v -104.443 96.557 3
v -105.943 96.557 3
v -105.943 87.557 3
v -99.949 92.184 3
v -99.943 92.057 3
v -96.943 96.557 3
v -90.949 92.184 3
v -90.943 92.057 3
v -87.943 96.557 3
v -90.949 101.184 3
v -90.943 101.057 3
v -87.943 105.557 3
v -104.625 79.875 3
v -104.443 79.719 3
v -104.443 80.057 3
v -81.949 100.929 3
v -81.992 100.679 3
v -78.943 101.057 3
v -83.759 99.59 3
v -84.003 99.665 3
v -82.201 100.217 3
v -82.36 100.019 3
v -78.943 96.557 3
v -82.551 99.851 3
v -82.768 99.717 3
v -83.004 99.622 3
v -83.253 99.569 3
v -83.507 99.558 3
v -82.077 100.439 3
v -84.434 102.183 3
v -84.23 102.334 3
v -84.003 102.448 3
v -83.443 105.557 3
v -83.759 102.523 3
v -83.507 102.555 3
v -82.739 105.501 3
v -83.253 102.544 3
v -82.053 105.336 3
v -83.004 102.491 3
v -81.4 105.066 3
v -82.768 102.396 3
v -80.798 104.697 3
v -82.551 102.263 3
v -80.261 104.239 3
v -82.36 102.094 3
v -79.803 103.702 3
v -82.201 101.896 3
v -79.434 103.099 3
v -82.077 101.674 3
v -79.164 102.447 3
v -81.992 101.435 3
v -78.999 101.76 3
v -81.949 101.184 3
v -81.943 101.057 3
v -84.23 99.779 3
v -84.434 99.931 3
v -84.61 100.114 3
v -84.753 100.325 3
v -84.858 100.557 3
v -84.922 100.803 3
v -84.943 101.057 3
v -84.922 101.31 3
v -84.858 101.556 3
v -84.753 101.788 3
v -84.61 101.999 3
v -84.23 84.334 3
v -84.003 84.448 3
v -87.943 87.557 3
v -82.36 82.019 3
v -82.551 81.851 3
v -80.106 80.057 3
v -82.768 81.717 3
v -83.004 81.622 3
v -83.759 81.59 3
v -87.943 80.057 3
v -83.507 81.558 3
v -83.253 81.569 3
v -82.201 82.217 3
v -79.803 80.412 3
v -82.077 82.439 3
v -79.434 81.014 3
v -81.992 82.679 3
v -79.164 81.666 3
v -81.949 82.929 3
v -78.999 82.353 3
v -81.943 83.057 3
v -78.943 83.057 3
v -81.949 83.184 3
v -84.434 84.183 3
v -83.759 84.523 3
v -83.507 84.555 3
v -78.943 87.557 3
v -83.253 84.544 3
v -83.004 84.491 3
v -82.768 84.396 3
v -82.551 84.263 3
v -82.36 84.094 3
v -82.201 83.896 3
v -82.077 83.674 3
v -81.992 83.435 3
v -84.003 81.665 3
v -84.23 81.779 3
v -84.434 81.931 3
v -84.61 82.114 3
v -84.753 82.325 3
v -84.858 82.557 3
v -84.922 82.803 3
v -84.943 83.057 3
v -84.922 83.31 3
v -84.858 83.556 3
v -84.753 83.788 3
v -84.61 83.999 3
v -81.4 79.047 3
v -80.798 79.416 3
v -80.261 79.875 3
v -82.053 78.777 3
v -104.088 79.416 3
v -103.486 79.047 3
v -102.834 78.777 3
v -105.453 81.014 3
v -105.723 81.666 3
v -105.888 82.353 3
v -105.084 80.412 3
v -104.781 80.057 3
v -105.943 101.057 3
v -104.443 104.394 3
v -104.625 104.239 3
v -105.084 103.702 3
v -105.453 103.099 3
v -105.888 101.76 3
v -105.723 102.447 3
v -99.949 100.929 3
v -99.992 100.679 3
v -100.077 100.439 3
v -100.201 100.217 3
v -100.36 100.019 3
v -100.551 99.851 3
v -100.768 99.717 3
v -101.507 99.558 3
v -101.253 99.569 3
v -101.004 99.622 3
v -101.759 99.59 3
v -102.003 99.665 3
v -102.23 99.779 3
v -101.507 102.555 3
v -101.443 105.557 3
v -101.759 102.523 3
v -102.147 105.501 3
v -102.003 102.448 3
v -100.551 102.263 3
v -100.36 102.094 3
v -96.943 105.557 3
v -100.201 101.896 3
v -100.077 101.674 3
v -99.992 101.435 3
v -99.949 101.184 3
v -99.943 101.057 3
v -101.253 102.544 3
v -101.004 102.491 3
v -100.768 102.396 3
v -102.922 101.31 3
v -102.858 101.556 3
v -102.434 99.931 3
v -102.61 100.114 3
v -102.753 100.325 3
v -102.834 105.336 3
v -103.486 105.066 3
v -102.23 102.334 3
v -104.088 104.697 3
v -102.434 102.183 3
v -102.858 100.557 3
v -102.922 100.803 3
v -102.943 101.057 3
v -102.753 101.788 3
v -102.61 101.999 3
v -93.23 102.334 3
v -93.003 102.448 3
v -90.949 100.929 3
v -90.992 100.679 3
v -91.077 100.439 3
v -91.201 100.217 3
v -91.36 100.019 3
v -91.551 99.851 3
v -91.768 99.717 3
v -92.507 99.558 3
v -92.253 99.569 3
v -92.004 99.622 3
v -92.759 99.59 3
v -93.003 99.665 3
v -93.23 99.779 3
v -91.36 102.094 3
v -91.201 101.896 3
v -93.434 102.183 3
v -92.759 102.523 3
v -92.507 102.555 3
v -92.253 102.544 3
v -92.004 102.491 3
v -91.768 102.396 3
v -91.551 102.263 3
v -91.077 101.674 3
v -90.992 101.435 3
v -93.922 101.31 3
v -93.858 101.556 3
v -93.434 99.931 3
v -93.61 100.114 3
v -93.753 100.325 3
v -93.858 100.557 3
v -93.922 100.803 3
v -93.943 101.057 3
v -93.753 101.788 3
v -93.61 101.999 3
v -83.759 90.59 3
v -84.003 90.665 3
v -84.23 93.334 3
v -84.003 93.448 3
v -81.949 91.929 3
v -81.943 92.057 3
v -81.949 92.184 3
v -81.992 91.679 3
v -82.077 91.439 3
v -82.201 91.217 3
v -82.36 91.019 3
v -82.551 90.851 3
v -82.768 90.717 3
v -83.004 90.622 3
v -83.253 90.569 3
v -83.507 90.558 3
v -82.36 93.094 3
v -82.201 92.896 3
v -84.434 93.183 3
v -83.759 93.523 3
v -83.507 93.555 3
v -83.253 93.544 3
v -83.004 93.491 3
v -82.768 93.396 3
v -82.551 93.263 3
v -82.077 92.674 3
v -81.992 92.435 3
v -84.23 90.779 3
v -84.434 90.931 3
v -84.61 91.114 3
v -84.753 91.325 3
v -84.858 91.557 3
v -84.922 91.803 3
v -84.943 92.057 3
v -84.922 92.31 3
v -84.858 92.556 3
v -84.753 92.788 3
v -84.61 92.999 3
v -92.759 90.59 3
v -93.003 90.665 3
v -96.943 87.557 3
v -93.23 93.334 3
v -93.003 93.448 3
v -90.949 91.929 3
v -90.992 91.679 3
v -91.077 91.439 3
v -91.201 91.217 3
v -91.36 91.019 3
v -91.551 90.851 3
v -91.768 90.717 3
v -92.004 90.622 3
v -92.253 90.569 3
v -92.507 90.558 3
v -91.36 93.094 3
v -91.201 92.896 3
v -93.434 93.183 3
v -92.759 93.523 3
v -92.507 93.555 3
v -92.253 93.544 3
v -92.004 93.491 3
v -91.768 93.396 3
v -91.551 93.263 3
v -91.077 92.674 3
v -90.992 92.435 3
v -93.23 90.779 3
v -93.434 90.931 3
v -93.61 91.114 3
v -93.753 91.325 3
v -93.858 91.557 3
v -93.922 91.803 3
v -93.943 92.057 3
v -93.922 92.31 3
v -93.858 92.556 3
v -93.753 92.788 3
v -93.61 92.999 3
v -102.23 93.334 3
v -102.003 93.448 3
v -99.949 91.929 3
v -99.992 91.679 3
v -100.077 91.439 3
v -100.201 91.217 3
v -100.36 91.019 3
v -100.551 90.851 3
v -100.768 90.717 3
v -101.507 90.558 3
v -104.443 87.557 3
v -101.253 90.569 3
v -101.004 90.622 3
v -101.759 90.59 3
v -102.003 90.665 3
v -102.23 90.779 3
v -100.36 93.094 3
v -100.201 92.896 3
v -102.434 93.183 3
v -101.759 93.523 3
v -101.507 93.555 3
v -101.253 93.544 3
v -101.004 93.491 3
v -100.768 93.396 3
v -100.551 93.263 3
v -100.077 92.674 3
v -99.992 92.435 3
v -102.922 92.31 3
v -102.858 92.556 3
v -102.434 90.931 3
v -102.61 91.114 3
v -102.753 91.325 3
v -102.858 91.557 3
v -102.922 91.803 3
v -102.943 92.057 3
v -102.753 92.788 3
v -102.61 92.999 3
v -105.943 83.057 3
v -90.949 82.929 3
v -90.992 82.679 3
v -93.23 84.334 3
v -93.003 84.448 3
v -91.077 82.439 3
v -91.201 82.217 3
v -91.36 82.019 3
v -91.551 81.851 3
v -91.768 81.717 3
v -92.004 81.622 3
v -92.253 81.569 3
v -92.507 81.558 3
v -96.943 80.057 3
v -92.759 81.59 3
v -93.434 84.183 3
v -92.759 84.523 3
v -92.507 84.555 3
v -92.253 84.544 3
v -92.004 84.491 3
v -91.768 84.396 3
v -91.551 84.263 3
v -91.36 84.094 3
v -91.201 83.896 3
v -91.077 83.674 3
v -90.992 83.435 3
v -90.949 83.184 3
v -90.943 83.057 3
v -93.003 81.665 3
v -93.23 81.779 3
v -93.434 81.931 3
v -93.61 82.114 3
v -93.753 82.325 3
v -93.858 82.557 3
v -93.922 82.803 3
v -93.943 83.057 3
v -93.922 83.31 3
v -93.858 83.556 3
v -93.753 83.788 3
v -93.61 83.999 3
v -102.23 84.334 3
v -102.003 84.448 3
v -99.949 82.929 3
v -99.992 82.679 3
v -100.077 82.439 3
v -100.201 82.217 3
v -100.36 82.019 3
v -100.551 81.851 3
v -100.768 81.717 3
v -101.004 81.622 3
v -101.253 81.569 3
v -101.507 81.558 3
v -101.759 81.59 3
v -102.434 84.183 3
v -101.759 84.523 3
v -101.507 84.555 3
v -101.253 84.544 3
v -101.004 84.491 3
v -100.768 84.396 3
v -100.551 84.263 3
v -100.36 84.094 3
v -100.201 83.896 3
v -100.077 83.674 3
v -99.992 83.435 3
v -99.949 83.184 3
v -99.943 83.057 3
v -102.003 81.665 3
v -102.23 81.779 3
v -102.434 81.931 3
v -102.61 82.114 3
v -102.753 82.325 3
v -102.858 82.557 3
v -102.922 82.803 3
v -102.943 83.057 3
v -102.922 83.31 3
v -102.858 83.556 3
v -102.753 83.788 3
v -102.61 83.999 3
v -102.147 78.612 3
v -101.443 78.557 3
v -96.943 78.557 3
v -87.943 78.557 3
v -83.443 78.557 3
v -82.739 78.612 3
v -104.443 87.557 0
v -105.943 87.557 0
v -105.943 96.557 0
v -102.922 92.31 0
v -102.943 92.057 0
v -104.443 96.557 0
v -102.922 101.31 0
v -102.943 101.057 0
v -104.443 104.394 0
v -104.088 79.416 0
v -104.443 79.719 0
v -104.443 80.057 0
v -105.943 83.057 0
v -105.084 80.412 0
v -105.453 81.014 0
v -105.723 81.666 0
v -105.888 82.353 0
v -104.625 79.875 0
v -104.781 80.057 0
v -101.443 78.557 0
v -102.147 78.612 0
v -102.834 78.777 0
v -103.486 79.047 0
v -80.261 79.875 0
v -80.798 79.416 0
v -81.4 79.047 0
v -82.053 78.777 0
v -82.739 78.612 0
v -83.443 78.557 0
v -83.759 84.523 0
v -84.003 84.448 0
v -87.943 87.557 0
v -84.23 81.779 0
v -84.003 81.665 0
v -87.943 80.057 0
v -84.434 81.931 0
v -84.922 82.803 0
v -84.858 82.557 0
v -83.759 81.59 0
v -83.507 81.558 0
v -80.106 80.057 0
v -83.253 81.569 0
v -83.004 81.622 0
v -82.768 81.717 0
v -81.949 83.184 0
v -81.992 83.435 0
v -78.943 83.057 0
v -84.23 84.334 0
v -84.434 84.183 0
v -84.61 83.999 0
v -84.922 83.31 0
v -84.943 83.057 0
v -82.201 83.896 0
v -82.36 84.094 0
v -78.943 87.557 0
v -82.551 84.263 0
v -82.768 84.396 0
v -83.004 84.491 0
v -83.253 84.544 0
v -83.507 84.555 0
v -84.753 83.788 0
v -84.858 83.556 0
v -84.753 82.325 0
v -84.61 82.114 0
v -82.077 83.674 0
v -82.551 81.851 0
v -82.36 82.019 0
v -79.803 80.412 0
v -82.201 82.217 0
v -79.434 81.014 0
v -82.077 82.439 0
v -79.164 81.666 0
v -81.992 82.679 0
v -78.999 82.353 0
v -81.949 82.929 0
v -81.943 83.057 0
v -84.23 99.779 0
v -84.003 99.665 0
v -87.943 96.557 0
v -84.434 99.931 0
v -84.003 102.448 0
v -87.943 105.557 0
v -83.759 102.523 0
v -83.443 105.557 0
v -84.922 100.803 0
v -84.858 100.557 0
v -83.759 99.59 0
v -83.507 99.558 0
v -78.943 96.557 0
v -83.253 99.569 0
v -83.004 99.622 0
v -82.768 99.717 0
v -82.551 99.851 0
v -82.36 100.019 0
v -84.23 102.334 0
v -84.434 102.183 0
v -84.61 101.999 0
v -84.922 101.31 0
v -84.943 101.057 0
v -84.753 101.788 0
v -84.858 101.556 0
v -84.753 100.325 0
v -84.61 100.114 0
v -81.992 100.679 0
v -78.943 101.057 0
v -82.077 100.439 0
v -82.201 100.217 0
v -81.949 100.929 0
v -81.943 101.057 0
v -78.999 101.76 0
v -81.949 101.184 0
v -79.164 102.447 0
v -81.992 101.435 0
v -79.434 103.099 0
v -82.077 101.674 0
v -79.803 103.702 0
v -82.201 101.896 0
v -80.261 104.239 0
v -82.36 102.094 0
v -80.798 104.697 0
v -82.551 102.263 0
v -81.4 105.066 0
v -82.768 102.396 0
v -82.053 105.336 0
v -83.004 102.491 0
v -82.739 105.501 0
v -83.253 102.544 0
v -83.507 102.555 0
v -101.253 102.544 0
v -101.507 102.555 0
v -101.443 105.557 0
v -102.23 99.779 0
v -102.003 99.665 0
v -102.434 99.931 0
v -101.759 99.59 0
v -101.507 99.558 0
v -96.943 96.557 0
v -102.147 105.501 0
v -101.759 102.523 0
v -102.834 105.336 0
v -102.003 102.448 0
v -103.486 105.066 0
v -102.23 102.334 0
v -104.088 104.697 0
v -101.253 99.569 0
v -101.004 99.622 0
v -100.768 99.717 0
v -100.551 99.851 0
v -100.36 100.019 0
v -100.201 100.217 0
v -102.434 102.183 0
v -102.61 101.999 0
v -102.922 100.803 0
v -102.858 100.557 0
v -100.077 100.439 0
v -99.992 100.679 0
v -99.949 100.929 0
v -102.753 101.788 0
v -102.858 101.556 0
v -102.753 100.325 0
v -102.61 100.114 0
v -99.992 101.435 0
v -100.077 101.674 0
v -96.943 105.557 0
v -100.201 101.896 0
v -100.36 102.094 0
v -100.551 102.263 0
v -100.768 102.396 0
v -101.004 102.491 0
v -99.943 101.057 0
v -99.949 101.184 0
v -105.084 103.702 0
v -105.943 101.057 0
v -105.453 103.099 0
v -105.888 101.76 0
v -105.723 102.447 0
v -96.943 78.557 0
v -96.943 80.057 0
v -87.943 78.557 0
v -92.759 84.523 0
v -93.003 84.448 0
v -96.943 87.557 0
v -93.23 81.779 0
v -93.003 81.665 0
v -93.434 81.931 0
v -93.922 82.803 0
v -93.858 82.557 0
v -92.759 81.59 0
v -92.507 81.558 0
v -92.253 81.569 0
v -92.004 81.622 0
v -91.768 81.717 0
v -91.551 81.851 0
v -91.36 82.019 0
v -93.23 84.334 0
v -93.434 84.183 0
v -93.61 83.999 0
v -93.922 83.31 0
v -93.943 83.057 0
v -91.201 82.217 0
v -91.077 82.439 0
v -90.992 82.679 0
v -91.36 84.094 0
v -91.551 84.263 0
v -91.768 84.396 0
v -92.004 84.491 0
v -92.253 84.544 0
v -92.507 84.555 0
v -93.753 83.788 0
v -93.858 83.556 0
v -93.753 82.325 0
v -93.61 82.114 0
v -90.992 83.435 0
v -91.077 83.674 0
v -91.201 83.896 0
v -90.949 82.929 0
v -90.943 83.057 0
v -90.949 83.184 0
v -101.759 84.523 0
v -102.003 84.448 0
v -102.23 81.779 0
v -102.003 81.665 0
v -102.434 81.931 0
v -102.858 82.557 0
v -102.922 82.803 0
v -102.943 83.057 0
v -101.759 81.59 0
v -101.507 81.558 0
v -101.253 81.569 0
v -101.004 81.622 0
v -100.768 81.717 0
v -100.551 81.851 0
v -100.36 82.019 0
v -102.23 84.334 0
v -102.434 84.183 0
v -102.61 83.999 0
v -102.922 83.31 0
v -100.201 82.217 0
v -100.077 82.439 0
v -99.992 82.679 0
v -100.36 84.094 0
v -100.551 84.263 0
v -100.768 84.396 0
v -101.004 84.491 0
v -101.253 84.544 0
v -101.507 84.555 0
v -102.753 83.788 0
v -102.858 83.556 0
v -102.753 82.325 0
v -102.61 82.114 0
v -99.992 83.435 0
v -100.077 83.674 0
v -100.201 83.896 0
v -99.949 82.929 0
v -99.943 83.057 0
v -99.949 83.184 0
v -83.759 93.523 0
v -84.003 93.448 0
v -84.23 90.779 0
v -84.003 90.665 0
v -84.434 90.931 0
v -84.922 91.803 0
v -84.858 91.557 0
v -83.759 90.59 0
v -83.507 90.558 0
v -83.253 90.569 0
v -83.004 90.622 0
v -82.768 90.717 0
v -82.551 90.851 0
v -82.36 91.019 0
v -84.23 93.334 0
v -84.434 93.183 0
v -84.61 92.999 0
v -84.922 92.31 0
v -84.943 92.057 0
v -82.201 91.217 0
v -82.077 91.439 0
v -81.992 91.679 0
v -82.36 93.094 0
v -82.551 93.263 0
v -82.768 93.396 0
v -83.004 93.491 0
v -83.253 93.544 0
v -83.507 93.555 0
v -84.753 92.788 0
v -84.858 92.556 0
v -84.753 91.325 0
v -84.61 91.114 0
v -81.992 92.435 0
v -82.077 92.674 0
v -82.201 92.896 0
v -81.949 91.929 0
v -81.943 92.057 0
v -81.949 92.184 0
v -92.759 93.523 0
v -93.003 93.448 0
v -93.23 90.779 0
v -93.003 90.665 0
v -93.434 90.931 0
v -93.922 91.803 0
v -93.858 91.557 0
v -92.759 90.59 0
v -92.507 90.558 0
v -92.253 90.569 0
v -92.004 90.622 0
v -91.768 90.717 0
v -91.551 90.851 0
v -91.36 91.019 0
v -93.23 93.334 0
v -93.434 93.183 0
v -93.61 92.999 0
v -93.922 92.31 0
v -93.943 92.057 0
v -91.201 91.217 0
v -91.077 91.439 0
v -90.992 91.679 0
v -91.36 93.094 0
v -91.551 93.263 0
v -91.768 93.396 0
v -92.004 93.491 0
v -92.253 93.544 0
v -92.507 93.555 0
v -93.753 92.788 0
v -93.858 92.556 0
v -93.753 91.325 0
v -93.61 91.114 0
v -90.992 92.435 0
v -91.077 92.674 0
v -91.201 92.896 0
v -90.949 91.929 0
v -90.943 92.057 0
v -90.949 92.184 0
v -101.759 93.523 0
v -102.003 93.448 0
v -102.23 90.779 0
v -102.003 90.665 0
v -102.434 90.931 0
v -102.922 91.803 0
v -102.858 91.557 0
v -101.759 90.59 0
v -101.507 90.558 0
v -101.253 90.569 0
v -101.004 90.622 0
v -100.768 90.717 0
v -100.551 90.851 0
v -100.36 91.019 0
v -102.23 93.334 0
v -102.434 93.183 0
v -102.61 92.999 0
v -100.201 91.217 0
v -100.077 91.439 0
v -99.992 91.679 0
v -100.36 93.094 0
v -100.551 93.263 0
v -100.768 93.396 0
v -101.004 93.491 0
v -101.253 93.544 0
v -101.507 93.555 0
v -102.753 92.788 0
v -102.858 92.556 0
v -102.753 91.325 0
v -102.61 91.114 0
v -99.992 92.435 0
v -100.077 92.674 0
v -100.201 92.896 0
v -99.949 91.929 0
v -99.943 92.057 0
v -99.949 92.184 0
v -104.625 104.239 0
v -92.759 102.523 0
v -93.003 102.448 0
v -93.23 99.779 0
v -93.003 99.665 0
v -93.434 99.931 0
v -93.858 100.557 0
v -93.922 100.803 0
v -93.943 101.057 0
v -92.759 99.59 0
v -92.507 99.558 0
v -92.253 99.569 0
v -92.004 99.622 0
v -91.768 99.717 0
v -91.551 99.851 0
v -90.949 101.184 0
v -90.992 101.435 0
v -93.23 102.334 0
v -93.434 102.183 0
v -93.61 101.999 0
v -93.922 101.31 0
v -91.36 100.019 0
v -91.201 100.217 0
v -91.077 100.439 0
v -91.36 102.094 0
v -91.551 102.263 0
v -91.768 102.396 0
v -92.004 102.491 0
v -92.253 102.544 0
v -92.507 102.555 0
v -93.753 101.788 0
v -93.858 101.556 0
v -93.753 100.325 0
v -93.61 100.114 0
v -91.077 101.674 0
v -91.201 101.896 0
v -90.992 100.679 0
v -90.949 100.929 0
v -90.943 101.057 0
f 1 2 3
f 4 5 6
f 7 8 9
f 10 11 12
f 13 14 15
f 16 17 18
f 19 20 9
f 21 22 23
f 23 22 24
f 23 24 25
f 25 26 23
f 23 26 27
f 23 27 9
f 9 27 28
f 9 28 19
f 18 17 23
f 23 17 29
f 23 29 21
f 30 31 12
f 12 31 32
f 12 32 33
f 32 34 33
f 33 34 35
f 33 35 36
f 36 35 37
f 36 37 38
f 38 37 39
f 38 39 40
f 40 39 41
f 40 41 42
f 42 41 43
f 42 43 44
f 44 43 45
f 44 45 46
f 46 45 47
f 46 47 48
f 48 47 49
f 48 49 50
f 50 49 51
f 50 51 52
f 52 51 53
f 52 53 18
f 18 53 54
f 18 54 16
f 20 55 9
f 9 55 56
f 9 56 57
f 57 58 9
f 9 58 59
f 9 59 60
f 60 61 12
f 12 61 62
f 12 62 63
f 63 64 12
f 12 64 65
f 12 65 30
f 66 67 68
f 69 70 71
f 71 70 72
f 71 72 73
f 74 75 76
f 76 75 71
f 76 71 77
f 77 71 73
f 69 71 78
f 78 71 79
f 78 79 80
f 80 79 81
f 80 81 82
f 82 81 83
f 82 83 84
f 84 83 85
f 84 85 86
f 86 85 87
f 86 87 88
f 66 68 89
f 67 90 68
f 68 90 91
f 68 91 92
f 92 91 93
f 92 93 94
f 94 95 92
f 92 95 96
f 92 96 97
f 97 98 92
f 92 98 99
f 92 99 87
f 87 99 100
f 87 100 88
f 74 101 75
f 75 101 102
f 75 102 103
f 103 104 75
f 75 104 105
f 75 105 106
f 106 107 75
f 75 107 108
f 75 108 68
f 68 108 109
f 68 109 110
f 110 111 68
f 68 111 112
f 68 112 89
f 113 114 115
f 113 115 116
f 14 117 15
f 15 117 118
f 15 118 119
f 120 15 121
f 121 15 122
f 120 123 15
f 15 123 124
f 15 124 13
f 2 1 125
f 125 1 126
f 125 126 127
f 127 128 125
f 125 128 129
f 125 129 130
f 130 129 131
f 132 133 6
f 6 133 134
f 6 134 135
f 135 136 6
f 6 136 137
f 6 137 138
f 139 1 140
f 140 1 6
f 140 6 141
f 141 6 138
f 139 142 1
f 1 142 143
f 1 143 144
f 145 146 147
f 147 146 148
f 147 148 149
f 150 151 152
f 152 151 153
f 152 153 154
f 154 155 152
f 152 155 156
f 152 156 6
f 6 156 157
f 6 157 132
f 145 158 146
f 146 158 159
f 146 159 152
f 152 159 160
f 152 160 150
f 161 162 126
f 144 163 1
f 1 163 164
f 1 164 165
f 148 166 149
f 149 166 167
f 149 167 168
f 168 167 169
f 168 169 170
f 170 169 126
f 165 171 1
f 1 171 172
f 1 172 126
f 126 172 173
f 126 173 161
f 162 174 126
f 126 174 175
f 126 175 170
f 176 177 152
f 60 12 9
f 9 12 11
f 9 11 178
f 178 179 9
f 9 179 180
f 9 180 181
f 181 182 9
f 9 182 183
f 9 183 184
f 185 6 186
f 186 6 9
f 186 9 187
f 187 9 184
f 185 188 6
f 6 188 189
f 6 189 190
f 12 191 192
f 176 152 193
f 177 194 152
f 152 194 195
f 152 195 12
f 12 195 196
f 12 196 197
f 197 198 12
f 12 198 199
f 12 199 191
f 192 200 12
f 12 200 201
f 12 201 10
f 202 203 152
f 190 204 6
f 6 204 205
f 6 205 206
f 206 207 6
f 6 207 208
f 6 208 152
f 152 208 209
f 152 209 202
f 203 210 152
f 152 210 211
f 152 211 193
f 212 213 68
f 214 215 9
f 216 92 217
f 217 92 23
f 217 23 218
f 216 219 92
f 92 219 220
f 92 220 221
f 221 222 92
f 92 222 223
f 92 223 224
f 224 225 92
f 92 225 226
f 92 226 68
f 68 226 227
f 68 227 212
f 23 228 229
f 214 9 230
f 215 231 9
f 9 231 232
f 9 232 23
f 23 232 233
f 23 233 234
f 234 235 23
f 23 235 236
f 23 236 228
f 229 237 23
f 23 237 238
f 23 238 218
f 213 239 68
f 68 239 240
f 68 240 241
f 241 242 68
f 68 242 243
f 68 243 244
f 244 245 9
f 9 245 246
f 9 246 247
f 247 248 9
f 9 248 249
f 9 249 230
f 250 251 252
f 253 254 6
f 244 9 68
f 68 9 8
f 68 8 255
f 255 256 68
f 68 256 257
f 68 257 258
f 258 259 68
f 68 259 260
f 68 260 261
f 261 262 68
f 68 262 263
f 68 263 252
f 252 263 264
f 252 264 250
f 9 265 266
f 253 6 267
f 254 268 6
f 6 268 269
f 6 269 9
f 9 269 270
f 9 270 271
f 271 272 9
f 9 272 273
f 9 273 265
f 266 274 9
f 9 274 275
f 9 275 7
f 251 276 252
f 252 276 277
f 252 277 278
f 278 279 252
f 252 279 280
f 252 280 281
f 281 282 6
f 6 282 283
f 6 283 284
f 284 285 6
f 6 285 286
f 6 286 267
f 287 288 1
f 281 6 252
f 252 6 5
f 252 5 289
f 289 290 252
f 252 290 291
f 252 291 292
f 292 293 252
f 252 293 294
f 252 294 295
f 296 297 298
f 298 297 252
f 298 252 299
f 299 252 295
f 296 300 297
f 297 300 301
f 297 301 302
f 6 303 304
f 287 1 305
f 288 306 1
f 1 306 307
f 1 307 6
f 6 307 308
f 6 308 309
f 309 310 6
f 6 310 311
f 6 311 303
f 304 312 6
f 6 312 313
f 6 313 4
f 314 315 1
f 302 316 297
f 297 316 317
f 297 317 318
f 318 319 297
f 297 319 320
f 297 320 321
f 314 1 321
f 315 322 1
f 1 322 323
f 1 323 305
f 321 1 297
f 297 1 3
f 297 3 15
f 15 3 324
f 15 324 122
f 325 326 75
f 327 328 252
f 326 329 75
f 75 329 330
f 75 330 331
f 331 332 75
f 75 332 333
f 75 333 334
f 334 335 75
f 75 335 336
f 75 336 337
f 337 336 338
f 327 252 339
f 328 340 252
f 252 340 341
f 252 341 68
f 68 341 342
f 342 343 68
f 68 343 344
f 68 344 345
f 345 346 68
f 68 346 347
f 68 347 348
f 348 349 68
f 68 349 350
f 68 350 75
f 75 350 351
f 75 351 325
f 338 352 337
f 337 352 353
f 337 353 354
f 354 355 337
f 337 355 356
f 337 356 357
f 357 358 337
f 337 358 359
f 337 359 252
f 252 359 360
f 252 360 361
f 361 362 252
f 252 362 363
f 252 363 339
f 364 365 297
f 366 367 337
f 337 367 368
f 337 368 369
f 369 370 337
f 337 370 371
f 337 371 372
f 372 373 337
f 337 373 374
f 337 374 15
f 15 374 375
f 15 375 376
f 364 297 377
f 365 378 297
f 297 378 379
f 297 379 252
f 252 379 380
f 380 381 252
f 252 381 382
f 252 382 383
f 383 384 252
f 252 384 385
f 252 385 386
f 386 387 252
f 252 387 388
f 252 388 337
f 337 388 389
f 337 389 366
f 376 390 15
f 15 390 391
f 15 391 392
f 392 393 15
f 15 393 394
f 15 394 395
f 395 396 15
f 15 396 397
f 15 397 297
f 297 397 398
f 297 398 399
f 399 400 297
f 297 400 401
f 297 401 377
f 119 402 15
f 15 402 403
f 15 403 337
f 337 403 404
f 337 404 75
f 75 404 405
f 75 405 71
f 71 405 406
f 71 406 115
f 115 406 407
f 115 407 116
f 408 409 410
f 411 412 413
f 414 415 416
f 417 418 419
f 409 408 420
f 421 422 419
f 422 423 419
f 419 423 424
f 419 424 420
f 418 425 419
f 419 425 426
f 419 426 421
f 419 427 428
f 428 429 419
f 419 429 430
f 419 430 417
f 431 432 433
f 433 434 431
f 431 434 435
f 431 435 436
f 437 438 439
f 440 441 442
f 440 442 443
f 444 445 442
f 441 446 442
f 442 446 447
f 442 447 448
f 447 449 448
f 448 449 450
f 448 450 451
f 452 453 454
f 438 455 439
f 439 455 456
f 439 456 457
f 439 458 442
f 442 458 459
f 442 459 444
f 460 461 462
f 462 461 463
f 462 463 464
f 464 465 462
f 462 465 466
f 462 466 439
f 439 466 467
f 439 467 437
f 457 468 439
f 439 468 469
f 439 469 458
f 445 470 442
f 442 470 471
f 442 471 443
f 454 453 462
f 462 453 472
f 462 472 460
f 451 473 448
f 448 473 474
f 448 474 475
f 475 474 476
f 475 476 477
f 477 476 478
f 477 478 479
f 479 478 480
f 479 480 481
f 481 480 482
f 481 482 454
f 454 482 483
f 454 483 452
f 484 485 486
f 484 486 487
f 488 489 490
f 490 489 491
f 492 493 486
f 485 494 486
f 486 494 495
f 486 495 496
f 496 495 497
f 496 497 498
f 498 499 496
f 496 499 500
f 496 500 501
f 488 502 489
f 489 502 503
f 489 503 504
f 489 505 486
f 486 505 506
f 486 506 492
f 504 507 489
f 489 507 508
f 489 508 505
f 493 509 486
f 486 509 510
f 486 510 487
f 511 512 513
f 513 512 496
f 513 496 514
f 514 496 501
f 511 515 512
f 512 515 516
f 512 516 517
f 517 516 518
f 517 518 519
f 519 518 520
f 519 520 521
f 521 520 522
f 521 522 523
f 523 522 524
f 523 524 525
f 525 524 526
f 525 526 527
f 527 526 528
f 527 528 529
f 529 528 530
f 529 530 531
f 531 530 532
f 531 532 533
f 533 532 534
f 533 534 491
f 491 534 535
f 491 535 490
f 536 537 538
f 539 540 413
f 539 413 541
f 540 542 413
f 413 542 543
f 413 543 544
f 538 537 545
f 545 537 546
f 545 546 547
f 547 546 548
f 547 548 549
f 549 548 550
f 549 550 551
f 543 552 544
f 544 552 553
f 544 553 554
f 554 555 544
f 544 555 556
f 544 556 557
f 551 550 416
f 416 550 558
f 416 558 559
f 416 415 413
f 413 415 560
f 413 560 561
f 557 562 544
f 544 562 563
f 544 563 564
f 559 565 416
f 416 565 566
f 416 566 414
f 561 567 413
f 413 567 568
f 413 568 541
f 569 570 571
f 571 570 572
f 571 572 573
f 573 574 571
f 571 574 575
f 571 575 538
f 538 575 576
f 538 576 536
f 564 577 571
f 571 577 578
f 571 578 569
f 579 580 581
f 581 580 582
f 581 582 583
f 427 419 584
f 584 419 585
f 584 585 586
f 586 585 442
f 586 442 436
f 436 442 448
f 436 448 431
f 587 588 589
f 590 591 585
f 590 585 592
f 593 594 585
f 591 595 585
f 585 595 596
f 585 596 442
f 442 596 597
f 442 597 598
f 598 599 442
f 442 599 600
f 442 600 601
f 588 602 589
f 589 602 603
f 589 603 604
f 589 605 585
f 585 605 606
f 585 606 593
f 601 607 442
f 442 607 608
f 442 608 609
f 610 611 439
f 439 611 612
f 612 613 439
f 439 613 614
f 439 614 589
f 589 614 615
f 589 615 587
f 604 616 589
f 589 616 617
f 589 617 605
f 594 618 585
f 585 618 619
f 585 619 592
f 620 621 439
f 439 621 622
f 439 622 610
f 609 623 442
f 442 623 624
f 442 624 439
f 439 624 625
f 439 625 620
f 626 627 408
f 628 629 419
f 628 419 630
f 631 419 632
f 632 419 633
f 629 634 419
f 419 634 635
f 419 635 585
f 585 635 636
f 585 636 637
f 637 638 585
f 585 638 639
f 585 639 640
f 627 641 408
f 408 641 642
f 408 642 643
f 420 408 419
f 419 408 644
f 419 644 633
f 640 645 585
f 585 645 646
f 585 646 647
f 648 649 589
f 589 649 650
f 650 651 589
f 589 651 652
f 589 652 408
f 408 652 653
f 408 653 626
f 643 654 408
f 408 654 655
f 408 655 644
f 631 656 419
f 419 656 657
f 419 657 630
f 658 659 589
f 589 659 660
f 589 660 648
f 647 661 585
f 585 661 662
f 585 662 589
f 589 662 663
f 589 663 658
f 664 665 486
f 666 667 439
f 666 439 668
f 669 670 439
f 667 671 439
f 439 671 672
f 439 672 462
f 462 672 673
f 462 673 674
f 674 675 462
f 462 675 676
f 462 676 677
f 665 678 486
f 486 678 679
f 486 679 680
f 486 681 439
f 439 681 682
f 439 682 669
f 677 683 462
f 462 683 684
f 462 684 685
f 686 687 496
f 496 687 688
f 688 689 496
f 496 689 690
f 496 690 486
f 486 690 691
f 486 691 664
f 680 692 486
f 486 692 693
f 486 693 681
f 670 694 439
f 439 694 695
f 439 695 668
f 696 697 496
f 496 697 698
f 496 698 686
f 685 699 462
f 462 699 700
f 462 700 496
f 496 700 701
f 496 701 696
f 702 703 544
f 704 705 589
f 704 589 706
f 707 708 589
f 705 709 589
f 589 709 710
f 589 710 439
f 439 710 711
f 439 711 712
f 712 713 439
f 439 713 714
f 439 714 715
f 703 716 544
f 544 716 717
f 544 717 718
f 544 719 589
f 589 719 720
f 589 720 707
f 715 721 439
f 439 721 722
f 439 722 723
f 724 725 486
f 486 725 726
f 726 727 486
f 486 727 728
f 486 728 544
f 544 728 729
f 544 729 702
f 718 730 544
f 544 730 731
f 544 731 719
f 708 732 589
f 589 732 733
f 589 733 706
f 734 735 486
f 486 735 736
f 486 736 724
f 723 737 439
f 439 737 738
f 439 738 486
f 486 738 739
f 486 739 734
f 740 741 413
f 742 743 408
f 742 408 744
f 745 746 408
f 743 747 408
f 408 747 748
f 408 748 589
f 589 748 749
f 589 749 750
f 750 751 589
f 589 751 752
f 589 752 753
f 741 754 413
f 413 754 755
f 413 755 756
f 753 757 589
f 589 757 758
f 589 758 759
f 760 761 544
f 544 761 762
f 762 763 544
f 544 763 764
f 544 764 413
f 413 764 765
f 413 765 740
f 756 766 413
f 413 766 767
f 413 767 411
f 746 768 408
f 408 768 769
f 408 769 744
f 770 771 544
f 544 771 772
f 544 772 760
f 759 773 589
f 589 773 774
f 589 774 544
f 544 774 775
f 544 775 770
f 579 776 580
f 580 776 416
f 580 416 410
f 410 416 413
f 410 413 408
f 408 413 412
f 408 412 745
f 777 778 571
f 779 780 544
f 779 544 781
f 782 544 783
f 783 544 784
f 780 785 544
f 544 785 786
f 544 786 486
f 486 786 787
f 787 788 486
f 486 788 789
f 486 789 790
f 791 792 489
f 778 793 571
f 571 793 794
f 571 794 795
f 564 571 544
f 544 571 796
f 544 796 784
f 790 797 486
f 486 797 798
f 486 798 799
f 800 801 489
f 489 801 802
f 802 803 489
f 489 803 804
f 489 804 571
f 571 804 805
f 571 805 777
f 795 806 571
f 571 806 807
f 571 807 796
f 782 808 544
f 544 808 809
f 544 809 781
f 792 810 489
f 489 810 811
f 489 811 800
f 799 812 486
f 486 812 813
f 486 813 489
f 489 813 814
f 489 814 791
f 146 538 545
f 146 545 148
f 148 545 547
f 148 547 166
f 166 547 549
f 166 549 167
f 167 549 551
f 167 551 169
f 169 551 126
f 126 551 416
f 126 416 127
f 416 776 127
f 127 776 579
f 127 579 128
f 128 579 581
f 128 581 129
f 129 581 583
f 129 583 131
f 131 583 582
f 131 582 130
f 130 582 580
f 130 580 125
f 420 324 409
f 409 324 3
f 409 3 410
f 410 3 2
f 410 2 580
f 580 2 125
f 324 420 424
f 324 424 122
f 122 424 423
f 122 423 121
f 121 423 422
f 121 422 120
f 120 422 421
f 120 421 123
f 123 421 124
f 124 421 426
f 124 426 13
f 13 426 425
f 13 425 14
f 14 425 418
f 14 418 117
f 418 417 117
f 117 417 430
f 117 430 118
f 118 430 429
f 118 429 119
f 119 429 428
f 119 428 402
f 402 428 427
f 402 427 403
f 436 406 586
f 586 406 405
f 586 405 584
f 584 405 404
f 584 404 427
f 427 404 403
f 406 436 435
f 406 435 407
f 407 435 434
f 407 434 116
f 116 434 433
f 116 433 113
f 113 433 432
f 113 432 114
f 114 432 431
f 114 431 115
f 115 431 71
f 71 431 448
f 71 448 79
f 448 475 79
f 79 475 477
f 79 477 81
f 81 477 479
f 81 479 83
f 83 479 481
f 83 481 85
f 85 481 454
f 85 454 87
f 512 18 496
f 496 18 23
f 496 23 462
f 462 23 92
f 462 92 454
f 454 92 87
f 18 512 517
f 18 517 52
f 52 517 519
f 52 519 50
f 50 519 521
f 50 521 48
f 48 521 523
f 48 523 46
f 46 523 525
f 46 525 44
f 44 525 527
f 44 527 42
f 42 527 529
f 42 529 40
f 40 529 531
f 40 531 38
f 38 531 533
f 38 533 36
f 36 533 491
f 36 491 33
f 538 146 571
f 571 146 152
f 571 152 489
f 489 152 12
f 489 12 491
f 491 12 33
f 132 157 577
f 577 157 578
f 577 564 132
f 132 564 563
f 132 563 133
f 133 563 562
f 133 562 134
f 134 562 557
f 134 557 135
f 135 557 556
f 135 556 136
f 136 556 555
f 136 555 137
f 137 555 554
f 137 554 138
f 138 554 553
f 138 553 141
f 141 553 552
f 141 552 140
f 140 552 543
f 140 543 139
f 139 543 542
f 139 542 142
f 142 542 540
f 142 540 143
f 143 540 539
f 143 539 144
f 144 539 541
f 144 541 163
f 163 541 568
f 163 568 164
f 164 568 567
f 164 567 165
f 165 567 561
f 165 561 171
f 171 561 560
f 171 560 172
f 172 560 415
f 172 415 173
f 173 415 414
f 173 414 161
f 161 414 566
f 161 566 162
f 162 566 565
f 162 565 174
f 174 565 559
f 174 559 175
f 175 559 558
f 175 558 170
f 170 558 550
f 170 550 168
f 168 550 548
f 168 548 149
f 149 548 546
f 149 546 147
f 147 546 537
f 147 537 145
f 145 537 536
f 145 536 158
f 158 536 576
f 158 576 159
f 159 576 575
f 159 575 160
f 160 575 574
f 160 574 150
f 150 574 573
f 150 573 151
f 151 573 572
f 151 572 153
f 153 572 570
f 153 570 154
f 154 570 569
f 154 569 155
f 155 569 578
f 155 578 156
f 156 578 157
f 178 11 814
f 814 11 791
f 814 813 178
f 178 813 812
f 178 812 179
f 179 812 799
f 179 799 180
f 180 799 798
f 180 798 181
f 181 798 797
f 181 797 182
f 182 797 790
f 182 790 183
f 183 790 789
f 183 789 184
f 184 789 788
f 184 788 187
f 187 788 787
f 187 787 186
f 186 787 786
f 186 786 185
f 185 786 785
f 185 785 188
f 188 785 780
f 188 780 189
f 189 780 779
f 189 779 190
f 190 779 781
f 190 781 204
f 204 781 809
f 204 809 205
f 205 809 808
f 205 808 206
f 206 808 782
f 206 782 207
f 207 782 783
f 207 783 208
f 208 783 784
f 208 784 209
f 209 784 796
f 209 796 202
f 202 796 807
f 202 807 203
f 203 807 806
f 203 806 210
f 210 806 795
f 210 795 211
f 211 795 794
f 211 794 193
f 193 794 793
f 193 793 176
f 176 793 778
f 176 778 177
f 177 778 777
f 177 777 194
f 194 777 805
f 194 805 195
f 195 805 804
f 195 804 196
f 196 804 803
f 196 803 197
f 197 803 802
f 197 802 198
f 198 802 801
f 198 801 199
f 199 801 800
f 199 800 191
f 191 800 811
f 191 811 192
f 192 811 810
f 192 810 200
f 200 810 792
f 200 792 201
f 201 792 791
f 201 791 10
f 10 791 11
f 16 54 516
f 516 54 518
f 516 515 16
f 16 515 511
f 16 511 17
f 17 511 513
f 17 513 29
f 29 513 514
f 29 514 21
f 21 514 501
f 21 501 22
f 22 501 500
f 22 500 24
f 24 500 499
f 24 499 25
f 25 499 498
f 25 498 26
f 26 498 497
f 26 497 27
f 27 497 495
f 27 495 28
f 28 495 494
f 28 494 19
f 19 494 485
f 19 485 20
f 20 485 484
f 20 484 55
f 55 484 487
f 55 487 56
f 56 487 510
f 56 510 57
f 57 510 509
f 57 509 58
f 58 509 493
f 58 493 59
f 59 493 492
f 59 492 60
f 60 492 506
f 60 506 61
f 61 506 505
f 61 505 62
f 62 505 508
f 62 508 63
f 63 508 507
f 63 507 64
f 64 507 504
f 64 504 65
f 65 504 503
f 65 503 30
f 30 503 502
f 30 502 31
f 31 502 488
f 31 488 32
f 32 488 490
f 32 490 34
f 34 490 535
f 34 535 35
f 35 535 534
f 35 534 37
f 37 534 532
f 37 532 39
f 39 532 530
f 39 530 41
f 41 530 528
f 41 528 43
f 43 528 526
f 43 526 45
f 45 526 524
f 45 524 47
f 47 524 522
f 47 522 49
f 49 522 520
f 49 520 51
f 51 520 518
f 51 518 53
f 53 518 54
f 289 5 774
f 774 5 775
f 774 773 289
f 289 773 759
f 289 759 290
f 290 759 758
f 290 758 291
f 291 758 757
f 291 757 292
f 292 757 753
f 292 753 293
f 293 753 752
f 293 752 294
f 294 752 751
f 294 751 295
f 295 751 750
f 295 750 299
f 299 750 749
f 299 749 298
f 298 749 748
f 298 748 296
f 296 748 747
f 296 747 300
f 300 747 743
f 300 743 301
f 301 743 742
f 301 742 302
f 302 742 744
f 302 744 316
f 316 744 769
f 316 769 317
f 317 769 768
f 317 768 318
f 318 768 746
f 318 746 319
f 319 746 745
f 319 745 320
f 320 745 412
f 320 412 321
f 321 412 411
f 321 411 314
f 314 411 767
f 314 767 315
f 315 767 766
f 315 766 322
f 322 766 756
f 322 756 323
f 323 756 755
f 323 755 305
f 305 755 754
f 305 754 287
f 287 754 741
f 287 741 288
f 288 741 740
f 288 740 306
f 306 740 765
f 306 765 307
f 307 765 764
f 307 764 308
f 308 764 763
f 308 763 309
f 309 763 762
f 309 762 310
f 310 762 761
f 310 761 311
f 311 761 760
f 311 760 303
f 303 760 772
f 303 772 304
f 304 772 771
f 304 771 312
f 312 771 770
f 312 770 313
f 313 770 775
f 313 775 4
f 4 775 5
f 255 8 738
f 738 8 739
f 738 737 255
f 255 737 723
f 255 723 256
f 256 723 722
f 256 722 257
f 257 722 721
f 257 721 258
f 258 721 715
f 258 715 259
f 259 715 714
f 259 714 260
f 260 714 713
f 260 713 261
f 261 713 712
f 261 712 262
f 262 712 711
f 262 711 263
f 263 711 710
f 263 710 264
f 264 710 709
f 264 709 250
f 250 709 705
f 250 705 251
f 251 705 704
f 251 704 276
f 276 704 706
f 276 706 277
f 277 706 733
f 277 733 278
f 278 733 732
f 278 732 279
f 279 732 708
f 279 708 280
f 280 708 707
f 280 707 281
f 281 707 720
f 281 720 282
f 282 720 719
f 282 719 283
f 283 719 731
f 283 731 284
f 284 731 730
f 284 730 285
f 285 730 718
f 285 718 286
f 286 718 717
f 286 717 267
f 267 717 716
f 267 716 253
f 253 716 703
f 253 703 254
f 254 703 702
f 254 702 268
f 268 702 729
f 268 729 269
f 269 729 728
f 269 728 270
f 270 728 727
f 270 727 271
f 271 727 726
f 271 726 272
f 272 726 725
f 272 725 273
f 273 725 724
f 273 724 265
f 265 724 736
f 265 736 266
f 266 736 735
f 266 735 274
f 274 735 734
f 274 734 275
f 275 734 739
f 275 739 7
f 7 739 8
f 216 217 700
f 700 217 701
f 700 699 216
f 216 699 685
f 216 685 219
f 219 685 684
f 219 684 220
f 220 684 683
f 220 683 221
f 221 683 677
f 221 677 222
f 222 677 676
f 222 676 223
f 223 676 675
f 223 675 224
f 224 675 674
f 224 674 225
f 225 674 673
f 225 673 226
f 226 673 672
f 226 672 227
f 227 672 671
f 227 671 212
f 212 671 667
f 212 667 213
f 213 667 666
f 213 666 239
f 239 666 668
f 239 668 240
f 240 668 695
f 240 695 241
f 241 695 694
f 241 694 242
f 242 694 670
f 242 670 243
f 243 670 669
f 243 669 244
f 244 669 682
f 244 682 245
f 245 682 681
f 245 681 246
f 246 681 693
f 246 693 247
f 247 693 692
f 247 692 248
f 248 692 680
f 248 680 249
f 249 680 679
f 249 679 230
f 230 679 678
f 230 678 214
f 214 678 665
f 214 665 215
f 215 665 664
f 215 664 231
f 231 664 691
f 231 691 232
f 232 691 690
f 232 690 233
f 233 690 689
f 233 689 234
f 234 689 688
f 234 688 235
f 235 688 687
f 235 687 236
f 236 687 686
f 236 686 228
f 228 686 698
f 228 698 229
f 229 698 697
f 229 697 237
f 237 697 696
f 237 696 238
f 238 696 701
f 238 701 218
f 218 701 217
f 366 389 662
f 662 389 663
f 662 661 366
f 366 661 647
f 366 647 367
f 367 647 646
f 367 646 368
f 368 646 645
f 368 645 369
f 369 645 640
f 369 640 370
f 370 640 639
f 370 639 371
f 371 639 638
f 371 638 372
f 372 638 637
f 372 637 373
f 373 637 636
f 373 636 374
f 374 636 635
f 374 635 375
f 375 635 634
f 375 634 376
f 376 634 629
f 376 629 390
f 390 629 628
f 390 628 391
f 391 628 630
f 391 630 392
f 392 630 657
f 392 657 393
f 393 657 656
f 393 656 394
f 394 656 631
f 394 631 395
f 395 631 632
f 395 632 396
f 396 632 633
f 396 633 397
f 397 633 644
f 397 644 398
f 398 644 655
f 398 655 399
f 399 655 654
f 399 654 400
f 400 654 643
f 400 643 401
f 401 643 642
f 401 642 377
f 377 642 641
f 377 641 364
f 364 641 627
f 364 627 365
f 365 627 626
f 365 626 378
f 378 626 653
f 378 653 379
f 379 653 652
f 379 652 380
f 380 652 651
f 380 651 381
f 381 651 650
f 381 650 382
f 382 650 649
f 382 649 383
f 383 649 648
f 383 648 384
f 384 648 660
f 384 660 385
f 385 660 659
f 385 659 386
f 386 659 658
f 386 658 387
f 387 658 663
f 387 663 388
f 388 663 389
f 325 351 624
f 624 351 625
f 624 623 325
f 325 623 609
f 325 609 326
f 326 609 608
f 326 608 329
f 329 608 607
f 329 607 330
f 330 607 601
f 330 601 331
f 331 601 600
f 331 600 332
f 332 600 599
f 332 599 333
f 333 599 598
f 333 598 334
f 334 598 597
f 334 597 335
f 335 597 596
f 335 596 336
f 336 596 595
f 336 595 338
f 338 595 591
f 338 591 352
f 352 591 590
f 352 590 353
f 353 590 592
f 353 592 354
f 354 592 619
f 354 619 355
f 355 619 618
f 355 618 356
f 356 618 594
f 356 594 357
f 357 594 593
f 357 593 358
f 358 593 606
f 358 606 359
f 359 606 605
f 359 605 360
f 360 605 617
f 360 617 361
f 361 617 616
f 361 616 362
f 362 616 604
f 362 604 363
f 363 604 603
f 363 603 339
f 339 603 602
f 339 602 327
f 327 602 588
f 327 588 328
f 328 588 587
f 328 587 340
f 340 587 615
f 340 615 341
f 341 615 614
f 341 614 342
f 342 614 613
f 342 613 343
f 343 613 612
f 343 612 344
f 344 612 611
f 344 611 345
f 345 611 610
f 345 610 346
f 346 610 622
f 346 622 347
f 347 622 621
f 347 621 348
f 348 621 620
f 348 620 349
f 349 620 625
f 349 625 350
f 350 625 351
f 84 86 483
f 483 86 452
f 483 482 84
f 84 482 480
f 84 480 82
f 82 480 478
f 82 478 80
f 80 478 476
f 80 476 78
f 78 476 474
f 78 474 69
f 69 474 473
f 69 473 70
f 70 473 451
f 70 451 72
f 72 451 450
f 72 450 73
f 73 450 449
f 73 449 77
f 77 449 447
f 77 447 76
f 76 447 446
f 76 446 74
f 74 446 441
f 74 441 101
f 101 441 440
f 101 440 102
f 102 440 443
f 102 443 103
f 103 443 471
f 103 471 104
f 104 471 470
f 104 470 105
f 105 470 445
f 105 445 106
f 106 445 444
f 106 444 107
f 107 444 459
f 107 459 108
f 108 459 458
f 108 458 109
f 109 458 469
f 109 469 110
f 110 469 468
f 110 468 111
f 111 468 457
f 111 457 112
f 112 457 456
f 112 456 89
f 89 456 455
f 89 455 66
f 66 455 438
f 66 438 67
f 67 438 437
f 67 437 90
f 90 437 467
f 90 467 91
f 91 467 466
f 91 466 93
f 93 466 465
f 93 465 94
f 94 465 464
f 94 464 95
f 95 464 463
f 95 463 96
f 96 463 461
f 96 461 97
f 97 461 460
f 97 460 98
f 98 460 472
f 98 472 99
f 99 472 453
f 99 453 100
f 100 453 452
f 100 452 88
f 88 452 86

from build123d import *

# Parameters (mm, degrees)
MODEL_R                 = 1.5
SALIENTE_EXTRUIR1_DEPTH = 3


with BuildPart() as part:
    # Model → Saliente-Extruir1 (new body)
    with BuildSketch(Plane.XY):
        with BuildLine():
            Line((-105.943383637, 101.056539338), (-105.943383637, 83.056539338))
            ThreePointArc((-105.943383637, 83.056539338), (-104.625364152, 79.874558823), (-101.443383637, 78.556539338))
            Line((-101.443383637, 78.556539338), (-83.443383637, 78.556539338))
            ThreePointArc((-83.443383637, 78.556539338), (-80.261403122, 79.874558823), (-78.943383637, 83.056539338))
            Line((-78.943383637, 83.056539338), (-78.943383637, 101.056539338))
            ThreePointArc((-78.943383637, 101.056539338), (-80.261403122, 104.238519853), (-83.443383637, 105.556539338))
            Line((-83.443383637, 105.556539338), (-101.443383637, 105.556539338))
            ThreePointArc((-101.443383637, 105.556539338), (-104.625364152, 104.238519853), (-105.943383637, 101.056539338))
        make_face()
        with Locations((-101.443383637, 101.056539338)):
            Circle(MODEL_R, mode=Mode.SUBTRACT)
        with Locations((-92.443383637, 101.056539338)):
            Circle(MODEL_R, mode=Mode.SUBTRACT)
        with Locations((-83.443383637, 101.056539338)):
            Circle(MODEL_R, mode=Mode.SUBTRACT)
        with Locations((-101.443383637, 92.056539338)):
            Circle(MODEL_R, mode=Mode.SUBTRACT)
        with Locations((-92.443383637, 92.056539338)):
            Circle(MODEL_R, mode=Mode.SUBTRACT)
        with Locations((-83.443383637, 92.056539338)):
            Circle(MODEL_R, mode=Mode.SUBTRACT)
        with Locations((-101.443383637, 83.056539338)):
            Circle(MODEL_R, mode=Mode.SUBTRACT)
        with Locations((-92.443383637, 83.056539338)):
            Circle(MODEL_R, mode=Mode.SUBTRACT)
        with Locations((-83.443383637, 83.056539338)):
            Circle(MODEL_R, mode=Mode.SUBTRACT)
    extrude(amount=SALIENTE_EXTRUIR1_DEPTH)


solid = part.part
